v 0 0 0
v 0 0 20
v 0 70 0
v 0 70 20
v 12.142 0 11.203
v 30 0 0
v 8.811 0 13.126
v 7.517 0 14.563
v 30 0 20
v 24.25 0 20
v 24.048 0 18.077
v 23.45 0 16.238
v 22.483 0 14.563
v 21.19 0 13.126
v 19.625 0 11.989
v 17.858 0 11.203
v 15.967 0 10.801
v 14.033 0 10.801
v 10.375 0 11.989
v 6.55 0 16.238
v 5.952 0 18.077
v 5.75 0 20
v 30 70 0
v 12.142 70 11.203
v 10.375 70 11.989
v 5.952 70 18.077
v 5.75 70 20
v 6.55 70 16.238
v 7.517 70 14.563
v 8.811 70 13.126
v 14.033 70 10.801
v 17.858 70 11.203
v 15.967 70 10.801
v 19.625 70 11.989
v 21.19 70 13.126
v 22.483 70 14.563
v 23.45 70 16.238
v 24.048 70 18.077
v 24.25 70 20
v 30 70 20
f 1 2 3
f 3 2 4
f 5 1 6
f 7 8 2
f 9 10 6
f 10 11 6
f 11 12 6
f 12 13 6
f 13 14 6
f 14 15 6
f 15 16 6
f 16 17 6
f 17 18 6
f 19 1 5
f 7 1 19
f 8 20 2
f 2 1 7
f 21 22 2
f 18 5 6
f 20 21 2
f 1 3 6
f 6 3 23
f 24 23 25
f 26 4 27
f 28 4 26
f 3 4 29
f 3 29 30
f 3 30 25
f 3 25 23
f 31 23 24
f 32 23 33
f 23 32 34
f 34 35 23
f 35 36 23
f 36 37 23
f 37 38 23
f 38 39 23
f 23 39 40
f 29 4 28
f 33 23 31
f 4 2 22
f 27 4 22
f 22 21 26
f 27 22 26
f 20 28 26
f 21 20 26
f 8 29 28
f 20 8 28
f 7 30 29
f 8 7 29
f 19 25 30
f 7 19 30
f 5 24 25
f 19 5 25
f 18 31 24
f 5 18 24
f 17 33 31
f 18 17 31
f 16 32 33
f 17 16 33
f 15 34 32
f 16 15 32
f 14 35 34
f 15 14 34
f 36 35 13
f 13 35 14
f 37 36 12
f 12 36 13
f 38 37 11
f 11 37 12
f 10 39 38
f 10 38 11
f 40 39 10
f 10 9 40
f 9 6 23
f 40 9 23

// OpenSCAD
center=true;

difference(){


cube([30, 70, 20]);

rotate([90, 0, 0])
translate([15, 20, 0])
cylinder(r1=9.25, r2=9.25, h=200, center=true);

}
